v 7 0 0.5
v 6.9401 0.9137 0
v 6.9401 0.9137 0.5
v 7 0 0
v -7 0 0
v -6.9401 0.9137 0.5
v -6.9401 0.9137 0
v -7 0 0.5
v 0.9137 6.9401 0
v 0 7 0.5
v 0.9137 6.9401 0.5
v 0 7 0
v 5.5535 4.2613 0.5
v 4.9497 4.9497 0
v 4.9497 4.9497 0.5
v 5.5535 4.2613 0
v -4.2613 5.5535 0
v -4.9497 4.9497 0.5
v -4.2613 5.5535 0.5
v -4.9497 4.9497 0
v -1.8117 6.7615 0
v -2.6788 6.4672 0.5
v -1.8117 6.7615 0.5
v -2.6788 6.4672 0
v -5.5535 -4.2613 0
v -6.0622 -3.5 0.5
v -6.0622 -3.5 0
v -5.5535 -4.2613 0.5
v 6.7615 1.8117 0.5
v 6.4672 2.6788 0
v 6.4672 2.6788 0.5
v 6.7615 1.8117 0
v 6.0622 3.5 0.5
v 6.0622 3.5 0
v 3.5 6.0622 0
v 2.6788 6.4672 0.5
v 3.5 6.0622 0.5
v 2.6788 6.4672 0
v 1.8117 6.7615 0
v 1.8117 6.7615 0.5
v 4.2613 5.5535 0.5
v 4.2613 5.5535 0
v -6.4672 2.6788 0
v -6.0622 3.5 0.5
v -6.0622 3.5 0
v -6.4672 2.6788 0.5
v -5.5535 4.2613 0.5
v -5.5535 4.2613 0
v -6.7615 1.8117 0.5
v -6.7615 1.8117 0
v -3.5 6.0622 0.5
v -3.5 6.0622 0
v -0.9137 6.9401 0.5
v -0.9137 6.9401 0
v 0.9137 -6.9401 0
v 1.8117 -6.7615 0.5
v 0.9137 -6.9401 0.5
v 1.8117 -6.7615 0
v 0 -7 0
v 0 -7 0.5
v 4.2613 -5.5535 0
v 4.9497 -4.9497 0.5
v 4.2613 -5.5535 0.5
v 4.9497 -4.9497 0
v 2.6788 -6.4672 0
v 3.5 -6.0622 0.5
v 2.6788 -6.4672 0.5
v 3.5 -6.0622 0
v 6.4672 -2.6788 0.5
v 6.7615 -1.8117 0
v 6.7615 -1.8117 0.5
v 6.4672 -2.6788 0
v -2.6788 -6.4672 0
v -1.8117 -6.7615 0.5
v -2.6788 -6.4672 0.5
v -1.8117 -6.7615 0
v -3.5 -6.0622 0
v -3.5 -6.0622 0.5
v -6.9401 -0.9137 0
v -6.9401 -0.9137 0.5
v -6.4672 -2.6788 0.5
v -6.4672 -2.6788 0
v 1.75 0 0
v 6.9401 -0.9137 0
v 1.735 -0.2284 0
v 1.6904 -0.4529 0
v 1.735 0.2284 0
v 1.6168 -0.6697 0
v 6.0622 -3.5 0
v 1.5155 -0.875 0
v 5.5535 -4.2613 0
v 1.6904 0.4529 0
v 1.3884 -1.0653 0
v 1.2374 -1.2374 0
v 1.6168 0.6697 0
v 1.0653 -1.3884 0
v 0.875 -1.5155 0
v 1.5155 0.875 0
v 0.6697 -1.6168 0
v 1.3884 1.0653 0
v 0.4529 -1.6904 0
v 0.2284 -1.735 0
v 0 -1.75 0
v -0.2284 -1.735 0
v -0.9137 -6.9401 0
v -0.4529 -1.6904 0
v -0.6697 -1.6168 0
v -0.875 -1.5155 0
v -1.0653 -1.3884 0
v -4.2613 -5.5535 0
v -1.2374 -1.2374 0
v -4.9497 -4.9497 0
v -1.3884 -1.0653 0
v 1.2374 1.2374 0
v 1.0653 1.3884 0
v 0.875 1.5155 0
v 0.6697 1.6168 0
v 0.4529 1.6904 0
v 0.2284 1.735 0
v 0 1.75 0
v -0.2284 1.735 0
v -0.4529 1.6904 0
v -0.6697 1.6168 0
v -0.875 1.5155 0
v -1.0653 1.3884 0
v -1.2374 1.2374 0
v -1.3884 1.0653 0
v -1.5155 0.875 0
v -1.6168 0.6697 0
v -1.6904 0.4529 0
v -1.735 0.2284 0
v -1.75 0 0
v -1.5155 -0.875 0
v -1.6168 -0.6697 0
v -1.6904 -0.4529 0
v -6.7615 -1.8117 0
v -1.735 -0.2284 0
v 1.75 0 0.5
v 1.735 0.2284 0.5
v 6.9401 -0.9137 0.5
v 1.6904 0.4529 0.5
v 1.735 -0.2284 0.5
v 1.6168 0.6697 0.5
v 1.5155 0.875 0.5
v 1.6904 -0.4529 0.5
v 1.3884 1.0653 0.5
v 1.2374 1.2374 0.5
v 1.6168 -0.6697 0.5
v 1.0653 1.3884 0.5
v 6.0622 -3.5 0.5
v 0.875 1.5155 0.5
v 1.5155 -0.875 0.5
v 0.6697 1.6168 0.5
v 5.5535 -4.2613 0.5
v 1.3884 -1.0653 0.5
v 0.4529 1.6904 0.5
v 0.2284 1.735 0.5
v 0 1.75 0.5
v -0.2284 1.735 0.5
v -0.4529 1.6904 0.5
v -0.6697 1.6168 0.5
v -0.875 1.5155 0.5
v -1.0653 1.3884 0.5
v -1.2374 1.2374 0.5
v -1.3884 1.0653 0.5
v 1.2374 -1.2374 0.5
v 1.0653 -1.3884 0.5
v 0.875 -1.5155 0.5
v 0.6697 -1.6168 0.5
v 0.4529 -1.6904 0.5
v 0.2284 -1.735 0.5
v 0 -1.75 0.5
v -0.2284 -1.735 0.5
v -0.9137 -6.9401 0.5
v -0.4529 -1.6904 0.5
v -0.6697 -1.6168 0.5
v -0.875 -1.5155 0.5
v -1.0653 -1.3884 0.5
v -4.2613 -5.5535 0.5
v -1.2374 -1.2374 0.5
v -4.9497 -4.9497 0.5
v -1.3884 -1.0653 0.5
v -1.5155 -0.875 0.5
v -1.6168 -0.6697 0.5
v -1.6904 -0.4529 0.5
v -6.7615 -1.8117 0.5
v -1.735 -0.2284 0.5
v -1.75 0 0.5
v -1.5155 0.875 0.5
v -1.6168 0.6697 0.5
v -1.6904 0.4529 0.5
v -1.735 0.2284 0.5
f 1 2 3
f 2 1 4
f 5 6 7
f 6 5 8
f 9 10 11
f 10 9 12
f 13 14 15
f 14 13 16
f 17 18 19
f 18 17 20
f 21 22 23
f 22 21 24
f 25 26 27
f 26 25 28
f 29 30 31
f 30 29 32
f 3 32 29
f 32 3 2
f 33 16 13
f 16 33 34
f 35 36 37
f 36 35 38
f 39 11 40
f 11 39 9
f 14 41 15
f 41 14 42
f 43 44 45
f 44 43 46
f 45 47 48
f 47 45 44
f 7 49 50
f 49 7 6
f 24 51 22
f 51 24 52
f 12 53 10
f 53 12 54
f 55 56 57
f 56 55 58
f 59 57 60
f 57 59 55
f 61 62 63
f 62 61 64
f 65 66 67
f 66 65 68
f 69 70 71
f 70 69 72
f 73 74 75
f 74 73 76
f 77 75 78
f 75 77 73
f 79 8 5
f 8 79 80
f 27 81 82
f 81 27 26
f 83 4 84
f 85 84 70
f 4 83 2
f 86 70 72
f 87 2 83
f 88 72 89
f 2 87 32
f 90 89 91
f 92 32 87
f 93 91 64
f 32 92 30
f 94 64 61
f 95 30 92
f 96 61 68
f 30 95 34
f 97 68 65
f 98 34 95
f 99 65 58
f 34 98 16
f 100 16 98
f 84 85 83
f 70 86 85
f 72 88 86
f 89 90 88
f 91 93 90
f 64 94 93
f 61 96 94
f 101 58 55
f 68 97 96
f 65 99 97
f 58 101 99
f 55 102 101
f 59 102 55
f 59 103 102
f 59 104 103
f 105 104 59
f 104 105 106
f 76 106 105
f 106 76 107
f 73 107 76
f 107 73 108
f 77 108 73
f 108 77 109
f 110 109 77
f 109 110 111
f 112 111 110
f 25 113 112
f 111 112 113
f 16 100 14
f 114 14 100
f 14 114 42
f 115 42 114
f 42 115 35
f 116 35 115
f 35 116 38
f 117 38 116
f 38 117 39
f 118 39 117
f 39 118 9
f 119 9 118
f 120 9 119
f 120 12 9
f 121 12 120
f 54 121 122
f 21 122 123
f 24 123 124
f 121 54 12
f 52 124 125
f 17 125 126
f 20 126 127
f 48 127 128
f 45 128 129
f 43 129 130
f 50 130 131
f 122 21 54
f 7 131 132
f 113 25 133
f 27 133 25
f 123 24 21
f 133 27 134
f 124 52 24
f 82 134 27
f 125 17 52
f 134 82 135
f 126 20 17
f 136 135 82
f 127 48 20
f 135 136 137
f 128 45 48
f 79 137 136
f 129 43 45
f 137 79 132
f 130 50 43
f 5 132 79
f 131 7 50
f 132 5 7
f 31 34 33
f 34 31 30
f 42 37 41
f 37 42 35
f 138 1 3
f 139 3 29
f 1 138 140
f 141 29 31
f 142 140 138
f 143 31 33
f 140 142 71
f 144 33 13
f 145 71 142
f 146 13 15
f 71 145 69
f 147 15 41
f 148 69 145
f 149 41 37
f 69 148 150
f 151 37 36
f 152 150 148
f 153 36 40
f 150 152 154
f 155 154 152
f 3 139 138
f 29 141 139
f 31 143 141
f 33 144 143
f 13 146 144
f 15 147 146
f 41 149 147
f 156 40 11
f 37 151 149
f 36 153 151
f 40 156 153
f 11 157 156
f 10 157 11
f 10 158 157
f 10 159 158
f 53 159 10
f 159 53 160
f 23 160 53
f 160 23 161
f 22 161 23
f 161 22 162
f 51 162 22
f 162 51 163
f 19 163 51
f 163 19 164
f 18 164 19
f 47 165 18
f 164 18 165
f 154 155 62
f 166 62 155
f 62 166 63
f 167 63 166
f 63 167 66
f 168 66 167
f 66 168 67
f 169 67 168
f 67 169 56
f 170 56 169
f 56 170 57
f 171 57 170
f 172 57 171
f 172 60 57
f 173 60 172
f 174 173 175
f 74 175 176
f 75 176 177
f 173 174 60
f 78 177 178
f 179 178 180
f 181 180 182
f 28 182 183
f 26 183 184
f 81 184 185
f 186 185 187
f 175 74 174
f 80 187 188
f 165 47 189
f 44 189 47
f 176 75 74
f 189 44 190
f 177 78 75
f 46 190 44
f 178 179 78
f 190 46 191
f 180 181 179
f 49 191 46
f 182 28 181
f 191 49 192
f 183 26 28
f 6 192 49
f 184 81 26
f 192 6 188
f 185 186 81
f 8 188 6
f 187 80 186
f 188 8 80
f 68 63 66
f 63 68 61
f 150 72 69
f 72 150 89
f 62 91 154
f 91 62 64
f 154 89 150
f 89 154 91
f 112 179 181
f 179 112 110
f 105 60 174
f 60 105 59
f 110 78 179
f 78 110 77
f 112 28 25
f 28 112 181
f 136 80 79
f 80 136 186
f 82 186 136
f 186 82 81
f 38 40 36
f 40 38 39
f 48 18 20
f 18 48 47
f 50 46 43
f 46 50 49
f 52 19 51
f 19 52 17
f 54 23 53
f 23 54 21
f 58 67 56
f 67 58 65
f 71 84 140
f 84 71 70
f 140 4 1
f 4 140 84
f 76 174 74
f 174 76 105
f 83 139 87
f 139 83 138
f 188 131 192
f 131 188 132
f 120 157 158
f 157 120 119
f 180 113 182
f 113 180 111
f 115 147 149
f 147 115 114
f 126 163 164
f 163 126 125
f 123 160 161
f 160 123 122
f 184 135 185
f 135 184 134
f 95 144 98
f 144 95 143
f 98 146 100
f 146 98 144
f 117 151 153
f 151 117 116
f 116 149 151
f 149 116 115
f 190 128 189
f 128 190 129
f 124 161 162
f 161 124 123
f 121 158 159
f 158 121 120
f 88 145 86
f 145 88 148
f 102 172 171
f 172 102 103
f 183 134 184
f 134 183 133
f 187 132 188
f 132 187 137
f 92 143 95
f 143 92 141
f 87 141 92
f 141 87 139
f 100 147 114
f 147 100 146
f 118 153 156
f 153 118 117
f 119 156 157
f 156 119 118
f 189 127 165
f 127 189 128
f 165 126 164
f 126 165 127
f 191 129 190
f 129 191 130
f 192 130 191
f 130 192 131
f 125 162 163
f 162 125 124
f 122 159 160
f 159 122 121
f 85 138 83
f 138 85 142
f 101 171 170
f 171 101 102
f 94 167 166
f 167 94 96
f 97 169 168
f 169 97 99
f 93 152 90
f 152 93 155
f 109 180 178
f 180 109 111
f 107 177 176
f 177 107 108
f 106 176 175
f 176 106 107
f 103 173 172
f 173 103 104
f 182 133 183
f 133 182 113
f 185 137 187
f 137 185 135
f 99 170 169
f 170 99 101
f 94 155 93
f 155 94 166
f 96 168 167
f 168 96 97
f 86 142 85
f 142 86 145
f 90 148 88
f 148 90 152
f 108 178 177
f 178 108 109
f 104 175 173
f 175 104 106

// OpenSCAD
// Gen-DC — assembly gap shim, h = run_clear (rotor face -> flange); copper is inside the flanges
include <parameters.scad>;
$fn = 48;
difference() {
    cylinder(d=spacer_pad_od, h=gap_spacer_h);
    translate([0, 0, -0.1]) cylinder(d=spacer_pad_id, h=gap_spacer_h + 0.2);
}
